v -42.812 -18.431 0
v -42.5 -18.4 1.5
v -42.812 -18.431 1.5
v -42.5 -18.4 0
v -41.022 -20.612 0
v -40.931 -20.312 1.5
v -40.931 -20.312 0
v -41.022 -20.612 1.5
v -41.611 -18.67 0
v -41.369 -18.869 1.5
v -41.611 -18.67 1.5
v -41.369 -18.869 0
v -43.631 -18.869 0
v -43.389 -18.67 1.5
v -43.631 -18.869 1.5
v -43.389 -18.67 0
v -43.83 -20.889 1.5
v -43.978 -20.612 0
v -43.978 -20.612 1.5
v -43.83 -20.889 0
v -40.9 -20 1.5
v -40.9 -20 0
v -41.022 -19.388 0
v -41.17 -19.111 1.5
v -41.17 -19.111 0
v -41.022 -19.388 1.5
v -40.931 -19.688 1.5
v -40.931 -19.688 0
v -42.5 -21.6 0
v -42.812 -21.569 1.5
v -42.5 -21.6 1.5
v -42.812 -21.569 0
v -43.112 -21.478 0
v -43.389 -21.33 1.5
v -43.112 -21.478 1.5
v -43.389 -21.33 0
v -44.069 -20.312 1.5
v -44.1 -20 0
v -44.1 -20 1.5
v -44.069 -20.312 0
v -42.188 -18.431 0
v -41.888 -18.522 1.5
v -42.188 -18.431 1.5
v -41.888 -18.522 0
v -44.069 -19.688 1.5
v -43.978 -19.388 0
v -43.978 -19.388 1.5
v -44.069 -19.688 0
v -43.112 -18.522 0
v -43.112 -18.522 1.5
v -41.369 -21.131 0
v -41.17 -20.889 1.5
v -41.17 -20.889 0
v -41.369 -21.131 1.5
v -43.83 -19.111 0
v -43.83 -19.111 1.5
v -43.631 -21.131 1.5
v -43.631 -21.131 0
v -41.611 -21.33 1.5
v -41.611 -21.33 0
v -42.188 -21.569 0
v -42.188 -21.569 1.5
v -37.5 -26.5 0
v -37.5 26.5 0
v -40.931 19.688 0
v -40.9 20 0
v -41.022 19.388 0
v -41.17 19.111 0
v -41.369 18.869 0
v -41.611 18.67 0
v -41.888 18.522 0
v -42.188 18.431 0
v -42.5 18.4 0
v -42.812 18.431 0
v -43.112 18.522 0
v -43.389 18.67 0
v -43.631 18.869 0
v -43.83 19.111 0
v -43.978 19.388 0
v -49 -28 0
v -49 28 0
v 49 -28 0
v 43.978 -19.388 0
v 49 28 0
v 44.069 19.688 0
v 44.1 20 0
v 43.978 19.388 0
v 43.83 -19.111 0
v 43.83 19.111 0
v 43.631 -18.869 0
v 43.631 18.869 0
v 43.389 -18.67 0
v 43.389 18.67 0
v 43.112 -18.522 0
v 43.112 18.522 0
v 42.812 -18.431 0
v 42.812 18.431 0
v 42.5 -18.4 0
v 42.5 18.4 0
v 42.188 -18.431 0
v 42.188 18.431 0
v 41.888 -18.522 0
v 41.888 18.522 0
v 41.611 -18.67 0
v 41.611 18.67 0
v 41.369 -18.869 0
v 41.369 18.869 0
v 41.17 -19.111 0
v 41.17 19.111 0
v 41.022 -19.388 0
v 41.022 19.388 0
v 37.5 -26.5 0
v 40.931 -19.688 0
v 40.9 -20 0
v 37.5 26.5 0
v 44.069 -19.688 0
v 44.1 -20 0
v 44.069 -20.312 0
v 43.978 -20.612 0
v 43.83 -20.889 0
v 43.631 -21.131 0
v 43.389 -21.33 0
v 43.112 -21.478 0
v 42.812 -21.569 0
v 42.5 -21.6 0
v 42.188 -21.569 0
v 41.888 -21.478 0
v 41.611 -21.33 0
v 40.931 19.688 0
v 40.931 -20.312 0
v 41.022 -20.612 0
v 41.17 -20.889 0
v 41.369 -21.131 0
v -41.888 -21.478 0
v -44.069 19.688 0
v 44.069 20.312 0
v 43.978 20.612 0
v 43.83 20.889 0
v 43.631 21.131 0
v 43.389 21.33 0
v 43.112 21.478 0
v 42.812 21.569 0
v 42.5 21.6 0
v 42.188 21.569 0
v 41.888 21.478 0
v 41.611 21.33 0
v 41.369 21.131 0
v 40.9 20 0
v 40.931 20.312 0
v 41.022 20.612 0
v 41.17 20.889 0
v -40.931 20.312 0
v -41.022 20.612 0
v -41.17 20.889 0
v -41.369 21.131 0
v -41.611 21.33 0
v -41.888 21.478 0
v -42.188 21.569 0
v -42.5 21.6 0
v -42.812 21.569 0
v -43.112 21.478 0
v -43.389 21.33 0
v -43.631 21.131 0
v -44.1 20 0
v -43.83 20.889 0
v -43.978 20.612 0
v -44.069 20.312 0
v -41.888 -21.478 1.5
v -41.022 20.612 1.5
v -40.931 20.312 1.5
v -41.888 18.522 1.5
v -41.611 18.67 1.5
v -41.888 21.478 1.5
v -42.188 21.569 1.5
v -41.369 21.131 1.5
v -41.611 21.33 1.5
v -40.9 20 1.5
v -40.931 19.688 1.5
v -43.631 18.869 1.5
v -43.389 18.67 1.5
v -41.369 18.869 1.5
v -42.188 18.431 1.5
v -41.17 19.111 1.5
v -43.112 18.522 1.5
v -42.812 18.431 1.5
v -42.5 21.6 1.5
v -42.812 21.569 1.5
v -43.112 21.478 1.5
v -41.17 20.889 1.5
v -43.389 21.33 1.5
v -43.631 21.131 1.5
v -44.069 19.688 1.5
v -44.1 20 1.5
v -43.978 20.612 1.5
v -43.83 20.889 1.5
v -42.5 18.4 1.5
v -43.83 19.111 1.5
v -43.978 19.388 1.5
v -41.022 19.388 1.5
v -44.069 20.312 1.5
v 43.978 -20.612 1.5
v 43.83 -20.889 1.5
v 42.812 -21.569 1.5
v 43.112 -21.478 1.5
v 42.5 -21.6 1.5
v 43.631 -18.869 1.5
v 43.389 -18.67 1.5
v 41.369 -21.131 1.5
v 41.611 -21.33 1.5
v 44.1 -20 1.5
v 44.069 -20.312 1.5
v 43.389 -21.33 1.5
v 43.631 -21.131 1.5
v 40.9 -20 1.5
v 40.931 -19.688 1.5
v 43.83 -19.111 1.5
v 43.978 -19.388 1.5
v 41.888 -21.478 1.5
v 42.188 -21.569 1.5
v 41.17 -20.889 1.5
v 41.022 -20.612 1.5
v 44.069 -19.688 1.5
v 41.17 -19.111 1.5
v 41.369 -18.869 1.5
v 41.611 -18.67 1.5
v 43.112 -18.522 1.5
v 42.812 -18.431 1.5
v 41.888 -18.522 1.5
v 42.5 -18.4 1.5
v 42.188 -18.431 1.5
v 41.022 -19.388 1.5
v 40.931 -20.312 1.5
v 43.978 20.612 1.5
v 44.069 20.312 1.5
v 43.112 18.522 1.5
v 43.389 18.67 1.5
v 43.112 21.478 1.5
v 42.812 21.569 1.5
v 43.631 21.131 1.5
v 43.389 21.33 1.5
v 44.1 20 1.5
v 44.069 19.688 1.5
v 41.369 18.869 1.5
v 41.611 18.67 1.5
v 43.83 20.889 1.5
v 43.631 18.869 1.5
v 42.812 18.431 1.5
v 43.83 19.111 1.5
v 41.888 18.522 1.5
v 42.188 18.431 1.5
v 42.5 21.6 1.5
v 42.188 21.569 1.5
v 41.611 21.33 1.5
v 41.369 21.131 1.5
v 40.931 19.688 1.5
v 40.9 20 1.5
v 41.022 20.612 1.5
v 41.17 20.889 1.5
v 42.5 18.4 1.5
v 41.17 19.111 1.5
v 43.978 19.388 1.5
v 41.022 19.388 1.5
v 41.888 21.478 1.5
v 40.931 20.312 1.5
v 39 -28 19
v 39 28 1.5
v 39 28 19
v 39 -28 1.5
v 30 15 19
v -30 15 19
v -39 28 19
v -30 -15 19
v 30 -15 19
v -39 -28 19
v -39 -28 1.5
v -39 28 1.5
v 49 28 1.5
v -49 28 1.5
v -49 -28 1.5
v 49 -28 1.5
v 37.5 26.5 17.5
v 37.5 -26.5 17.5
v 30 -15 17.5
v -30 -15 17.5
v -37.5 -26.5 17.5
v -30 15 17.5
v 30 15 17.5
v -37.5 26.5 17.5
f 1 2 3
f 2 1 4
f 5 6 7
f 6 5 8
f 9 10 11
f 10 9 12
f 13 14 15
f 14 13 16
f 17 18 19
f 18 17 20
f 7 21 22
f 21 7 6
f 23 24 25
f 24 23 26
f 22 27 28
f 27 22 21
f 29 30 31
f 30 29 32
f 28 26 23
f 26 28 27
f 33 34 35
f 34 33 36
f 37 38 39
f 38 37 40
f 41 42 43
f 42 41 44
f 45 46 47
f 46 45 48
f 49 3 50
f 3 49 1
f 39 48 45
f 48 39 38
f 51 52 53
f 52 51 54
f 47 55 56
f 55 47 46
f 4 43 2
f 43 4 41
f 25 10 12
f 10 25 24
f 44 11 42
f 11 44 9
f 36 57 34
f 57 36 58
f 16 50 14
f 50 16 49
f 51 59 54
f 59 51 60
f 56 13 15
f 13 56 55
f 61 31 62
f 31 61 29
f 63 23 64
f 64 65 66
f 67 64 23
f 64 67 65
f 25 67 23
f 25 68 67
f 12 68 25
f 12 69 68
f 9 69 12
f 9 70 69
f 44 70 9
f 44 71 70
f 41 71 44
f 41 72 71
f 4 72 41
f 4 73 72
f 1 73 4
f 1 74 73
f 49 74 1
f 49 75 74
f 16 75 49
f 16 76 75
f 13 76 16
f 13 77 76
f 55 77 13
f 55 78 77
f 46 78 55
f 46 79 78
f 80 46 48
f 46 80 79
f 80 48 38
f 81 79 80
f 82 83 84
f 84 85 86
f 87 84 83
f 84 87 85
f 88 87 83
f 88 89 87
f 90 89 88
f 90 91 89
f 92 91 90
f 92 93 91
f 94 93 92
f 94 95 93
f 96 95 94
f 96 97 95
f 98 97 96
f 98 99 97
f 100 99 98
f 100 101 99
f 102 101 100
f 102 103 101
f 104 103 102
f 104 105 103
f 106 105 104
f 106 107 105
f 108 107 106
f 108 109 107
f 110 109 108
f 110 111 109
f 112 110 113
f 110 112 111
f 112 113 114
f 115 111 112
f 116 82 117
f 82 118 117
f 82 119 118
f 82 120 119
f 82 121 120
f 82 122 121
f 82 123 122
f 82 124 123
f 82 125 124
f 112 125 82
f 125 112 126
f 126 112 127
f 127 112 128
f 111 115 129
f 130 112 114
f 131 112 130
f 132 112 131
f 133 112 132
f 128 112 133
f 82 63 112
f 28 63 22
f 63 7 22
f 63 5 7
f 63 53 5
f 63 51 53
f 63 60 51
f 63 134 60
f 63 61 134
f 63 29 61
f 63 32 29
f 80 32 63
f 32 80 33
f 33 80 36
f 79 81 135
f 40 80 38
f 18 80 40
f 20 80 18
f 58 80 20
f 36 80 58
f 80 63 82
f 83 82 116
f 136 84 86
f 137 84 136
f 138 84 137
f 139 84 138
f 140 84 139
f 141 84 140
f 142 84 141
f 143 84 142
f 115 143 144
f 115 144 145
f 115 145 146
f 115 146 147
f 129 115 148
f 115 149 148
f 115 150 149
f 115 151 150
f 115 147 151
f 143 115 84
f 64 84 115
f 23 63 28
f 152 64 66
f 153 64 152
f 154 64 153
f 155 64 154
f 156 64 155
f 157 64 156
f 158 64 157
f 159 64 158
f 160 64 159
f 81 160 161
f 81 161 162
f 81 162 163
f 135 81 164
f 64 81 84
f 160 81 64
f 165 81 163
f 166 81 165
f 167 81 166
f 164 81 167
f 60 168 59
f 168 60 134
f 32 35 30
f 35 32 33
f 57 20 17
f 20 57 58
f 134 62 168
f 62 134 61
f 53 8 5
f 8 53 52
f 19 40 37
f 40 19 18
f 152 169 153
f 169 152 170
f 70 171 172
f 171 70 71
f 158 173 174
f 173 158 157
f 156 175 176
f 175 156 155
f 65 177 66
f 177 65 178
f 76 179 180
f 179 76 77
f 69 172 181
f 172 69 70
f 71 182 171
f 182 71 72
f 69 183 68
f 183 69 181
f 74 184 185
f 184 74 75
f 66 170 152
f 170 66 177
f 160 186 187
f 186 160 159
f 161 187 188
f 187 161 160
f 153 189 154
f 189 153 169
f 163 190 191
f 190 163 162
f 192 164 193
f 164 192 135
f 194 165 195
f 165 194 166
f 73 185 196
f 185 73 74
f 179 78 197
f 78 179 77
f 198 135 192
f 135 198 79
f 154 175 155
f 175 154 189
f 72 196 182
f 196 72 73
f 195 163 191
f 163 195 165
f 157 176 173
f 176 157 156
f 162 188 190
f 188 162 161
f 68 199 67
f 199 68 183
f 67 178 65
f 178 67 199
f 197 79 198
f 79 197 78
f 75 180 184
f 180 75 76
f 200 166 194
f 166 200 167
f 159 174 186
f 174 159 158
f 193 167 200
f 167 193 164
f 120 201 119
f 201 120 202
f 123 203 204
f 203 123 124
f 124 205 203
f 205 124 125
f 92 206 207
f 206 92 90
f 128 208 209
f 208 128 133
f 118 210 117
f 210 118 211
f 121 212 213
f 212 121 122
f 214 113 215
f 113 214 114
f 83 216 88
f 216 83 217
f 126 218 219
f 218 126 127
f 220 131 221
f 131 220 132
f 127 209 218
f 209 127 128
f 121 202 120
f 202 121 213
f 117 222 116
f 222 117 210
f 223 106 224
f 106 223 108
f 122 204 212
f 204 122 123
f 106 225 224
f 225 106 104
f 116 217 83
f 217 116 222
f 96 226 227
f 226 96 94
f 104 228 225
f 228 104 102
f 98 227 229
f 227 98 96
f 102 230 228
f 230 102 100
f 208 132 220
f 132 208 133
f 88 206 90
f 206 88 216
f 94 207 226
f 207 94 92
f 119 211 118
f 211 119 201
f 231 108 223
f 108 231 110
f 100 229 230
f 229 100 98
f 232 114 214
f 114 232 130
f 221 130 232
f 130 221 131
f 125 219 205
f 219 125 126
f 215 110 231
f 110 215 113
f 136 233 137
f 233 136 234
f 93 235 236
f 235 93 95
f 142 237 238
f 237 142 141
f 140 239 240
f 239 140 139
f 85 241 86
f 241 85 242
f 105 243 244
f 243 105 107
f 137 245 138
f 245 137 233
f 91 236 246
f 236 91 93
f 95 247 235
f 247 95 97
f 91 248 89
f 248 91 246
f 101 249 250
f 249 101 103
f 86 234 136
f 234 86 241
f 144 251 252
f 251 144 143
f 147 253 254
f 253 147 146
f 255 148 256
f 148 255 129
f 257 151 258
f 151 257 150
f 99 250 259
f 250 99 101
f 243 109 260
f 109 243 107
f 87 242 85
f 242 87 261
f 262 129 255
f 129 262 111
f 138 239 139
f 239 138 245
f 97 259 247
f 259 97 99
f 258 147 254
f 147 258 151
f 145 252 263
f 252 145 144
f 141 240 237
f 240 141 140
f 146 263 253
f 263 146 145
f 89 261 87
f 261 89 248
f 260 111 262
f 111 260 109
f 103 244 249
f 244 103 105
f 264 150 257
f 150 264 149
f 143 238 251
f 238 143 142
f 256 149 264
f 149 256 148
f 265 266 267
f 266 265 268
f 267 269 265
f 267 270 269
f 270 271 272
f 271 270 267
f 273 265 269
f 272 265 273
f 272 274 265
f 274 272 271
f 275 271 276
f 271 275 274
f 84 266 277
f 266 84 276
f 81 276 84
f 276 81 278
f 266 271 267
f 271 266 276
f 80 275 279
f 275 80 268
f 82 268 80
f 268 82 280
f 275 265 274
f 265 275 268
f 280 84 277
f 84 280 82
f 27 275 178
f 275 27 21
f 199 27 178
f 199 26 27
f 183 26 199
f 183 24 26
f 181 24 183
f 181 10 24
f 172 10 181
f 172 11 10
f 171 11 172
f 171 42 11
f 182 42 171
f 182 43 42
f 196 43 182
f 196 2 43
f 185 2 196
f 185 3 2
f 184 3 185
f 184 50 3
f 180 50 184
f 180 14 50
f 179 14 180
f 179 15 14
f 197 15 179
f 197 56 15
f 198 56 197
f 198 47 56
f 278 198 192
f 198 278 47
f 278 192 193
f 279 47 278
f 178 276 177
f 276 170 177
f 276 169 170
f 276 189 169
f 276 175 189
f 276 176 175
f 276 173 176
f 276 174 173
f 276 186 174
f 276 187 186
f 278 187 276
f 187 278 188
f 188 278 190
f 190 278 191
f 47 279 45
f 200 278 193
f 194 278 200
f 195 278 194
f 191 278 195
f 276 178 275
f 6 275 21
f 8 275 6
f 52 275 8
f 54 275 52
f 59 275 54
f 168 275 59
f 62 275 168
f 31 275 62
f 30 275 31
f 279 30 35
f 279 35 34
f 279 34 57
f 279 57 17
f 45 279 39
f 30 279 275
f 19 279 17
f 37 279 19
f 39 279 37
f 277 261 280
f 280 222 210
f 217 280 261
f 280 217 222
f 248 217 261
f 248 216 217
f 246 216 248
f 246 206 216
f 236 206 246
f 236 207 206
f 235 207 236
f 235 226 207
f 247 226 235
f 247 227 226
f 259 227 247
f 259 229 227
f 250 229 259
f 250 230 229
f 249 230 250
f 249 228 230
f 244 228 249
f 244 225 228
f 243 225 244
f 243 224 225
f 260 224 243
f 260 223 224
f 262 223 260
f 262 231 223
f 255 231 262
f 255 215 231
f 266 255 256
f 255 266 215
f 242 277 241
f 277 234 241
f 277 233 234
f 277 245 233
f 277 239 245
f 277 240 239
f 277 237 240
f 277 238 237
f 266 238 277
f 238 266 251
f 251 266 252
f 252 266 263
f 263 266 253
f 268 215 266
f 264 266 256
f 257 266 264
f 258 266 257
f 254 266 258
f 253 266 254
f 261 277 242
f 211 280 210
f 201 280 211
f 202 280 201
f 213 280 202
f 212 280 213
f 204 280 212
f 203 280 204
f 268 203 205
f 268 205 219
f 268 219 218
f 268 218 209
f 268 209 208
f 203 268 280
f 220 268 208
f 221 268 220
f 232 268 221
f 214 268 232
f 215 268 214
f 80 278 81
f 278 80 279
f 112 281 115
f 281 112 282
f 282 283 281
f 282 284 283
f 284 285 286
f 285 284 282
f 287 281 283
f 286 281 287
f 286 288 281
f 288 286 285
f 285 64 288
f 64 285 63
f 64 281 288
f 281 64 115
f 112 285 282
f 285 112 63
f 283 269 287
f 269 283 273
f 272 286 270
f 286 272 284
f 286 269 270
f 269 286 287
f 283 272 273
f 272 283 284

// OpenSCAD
difference() {
    union() {
        cube_center([78,56,19]);
        cube_center([78+20,56,1.5]);
    }
    cube_center([75,53,19-1.5]);
    for(s=[-1,1]) for(t=[-1,1])
    translate([(75/2+5)*s,20*t,0])
    cylinder(d=3.2,h=10,$fn=32);
    
    cube_center([60,30,100]);
}

module cube_center(dims,r=0) {
    if(r==0) {
        translate([-dims[0]/2, -dims[1]/2, 0])
        cube(dims);
    } else {
        
        minkowski() {
            translate([-dims[0]/2+r, -dims[1]/2+r, 0])
            cube([dims[0]-2*r,dims[1]-2*r,dims[2]]);
            cylinder(r=r,h=0.00001,$fn=32);
        }
    }
}
